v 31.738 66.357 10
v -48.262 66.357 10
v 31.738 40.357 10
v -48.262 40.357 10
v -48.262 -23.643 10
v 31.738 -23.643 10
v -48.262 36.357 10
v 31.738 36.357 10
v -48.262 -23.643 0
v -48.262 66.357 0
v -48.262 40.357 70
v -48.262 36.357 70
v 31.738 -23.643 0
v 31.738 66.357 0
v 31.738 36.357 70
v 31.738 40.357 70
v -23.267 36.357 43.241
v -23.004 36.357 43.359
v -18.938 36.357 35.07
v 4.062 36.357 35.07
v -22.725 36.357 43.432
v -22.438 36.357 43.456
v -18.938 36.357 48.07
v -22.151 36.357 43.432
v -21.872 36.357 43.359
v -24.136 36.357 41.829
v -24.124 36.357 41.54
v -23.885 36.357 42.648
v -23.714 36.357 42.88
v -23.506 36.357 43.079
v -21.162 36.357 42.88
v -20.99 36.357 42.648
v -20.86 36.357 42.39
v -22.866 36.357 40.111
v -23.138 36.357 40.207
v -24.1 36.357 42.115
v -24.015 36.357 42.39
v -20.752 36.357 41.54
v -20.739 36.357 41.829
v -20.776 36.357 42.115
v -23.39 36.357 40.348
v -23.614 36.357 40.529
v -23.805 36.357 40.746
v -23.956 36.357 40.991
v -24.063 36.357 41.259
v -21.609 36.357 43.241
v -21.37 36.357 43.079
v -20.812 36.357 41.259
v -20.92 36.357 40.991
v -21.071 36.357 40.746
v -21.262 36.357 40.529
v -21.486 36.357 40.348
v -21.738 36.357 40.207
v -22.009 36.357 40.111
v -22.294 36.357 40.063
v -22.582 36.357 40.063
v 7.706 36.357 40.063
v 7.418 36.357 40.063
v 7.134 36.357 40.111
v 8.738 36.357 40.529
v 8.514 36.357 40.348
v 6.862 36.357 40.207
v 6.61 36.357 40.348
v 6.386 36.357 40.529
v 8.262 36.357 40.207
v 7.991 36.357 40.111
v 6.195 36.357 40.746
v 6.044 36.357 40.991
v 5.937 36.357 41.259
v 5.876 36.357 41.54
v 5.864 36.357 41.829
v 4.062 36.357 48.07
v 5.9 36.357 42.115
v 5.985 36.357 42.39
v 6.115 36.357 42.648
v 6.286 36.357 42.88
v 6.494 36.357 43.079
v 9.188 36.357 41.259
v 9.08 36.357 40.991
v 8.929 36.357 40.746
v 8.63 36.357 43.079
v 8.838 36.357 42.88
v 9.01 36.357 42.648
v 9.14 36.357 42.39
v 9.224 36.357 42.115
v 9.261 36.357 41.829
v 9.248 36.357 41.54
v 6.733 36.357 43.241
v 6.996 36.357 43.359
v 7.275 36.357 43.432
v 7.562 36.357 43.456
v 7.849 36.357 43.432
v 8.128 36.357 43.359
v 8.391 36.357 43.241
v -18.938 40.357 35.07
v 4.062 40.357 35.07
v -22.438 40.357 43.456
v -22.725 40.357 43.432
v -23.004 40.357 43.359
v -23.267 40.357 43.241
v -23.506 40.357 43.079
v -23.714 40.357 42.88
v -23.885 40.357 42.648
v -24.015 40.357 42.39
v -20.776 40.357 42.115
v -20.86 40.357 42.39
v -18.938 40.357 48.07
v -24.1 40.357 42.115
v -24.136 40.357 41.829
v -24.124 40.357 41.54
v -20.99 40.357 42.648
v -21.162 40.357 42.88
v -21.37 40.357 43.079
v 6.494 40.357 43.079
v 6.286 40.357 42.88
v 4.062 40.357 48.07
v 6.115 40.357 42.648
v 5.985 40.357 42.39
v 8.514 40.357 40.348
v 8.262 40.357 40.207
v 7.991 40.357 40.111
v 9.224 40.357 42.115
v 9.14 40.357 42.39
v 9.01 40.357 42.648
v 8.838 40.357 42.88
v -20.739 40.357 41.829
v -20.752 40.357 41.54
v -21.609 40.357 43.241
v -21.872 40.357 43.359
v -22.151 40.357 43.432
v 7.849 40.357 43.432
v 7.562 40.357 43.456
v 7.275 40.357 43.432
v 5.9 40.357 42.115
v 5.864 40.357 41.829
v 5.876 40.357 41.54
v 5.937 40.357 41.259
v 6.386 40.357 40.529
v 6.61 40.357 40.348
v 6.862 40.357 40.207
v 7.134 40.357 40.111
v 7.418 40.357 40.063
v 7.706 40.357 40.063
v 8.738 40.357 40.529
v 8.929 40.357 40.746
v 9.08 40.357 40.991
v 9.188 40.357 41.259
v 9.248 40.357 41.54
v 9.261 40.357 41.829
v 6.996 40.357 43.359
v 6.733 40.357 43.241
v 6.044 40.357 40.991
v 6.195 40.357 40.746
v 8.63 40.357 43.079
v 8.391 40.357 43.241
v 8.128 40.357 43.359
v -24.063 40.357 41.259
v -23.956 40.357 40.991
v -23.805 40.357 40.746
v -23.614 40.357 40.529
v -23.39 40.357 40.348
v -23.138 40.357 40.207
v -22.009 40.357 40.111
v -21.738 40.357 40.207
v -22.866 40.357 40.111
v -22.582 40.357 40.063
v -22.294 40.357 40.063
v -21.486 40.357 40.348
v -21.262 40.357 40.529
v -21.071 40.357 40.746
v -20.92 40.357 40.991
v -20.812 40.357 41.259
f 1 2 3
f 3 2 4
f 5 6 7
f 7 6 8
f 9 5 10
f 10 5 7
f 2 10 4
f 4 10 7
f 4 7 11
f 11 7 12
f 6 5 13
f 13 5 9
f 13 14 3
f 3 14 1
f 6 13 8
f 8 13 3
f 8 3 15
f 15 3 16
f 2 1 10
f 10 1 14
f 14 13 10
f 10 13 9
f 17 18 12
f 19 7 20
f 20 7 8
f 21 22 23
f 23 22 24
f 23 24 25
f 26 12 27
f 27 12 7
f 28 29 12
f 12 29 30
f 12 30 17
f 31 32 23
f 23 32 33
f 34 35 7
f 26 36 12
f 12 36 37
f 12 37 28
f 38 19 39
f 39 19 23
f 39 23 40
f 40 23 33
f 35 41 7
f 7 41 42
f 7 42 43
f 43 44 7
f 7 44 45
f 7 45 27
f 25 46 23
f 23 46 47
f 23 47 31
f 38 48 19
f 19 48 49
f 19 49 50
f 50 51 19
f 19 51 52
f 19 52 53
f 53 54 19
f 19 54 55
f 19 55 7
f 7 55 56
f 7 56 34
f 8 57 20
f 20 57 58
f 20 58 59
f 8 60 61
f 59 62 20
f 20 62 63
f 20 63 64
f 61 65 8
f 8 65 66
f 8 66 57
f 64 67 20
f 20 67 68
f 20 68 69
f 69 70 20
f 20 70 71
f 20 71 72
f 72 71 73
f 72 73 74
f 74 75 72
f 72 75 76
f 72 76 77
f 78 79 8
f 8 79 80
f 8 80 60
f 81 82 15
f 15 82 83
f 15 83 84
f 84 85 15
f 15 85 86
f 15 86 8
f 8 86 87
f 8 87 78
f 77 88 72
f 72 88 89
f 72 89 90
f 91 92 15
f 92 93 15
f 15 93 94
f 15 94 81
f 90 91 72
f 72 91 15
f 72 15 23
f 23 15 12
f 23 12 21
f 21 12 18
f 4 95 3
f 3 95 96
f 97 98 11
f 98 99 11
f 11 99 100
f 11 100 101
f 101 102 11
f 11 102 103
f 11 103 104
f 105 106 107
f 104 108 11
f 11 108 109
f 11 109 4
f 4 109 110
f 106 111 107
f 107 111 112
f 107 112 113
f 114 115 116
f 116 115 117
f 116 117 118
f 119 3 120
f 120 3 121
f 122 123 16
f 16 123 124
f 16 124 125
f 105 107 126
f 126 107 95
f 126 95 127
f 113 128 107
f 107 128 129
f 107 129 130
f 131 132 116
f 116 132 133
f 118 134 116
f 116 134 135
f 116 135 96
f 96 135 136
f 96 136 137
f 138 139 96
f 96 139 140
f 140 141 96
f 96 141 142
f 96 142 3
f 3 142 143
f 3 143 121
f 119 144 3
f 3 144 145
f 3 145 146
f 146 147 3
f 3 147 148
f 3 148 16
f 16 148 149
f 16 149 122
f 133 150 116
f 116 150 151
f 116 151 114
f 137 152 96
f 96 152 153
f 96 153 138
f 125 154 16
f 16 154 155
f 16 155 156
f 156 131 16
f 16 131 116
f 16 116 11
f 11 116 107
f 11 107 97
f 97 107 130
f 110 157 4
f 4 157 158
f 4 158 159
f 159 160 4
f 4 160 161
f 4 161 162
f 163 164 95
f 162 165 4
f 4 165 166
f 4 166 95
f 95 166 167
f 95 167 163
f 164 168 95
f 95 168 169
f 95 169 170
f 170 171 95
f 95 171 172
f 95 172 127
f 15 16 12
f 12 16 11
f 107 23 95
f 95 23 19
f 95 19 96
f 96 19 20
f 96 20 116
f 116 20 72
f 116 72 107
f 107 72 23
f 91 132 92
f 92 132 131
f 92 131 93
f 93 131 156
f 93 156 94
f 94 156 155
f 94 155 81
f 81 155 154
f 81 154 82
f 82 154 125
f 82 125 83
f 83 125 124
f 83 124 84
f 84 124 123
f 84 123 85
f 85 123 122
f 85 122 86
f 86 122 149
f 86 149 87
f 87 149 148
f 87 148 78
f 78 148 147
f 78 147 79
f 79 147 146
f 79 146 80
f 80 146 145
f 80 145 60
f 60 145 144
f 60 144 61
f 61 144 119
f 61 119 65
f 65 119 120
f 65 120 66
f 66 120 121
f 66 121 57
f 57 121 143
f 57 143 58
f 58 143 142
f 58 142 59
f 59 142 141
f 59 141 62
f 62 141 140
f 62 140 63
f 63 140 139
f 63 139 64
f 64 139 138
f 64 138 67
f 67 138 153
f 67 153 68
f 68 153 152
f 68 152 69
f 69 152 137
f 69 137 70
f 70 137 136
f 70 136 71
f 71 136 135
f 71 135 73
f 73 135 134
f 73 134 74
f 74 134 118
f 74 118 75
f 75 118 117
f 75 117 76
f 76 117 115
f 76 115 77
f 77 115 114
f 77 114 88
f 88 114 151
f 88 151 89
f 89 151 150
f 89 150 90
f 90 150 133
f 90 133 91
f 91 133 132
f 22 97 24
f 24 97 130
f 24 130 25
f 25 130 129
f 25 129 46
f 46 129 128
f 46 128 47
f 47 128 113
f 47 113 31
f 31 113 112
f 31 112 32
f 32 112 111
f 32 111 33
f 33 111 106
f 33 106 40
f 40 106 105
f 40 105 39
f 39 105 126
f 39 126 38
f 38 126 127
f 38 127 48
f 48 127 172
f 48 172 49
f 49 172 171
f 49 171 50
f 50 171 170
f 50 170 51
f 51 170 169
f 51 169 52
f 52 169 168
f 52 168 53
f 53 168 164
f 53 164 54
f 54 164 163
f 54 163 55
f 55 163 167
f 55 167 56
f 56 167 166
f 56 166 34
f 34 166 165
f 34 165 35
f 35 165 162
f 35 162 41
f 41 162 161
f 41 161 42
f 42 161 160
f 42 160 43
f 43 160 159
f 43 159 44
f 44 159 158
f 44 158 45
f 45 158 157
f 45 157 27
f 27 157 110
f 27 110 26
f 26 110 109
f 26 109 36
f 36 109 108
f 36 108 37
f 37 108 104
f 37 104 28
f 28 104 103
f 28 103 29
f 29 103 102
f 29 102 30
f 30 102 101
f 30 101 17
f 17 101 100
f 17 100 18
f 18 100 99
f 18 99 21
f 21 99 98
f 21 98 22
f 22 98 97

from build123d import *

# Parameters (mm, degrees)
BASE_DEPTH         = 10
SKETCH2_W          = 80
SKETCH2_H          = 4
SHELF_DEPTH        = 60
SKETCH5_R          = 1.7
SKETCH5_W          = 23
SKETCH5_H          = 13
CUT_EXTRUDE2_DEPTH = 10


with BuildPart() as part:
    # Sketch1 → Base (new body)
    with BuildSketch(Plane.XY):
        Polygon((-48.262081784, 36.356877323), (-48.262081784, -23.643122677), (31.737918216, -23.643122677), (31.737918216, 36.356877323), (31.737918216, 66.356877323), (-48.262081784, 66.356877323), align=None)
    extrude(amount=BASE_DEPTH)

    # Sketch2 → Shelf (add)
    with BuildSketch(Plane.XY.offset(10)):
        with Locations((-8.262081784, 38.356877323)):
            Rectangle(SKETCH2_W, SKETCH2_H)
    extrude(amount=SHELF_DEPTH)

    # Sketch5 → Cut-Extrude2 (cut)
    with BuildSketch(Plane(origin=(0, 40.356877323, 0), x_dir=(1, 0, 0), z_dir=(0, 1, 0))):
        with Locations(Location((-22.437854868, -41.756424537, 0), (0, 0, 270))):
            Circle(SKETCH5_R)
        with Locations(Location((7.562145132, -41.756424537, 0), (0, 0, 270))):
            Circle(SKETCH5_R)
        with Locations((-7.437854868, -41.569973221)):
            Rectangle(SKETCH5_W, SKETCH5_H)
    extrude(amount=-CUT_EXTRUDE2_DEPTH, mode=Mode.SUBTRACT)


solid = part.part
